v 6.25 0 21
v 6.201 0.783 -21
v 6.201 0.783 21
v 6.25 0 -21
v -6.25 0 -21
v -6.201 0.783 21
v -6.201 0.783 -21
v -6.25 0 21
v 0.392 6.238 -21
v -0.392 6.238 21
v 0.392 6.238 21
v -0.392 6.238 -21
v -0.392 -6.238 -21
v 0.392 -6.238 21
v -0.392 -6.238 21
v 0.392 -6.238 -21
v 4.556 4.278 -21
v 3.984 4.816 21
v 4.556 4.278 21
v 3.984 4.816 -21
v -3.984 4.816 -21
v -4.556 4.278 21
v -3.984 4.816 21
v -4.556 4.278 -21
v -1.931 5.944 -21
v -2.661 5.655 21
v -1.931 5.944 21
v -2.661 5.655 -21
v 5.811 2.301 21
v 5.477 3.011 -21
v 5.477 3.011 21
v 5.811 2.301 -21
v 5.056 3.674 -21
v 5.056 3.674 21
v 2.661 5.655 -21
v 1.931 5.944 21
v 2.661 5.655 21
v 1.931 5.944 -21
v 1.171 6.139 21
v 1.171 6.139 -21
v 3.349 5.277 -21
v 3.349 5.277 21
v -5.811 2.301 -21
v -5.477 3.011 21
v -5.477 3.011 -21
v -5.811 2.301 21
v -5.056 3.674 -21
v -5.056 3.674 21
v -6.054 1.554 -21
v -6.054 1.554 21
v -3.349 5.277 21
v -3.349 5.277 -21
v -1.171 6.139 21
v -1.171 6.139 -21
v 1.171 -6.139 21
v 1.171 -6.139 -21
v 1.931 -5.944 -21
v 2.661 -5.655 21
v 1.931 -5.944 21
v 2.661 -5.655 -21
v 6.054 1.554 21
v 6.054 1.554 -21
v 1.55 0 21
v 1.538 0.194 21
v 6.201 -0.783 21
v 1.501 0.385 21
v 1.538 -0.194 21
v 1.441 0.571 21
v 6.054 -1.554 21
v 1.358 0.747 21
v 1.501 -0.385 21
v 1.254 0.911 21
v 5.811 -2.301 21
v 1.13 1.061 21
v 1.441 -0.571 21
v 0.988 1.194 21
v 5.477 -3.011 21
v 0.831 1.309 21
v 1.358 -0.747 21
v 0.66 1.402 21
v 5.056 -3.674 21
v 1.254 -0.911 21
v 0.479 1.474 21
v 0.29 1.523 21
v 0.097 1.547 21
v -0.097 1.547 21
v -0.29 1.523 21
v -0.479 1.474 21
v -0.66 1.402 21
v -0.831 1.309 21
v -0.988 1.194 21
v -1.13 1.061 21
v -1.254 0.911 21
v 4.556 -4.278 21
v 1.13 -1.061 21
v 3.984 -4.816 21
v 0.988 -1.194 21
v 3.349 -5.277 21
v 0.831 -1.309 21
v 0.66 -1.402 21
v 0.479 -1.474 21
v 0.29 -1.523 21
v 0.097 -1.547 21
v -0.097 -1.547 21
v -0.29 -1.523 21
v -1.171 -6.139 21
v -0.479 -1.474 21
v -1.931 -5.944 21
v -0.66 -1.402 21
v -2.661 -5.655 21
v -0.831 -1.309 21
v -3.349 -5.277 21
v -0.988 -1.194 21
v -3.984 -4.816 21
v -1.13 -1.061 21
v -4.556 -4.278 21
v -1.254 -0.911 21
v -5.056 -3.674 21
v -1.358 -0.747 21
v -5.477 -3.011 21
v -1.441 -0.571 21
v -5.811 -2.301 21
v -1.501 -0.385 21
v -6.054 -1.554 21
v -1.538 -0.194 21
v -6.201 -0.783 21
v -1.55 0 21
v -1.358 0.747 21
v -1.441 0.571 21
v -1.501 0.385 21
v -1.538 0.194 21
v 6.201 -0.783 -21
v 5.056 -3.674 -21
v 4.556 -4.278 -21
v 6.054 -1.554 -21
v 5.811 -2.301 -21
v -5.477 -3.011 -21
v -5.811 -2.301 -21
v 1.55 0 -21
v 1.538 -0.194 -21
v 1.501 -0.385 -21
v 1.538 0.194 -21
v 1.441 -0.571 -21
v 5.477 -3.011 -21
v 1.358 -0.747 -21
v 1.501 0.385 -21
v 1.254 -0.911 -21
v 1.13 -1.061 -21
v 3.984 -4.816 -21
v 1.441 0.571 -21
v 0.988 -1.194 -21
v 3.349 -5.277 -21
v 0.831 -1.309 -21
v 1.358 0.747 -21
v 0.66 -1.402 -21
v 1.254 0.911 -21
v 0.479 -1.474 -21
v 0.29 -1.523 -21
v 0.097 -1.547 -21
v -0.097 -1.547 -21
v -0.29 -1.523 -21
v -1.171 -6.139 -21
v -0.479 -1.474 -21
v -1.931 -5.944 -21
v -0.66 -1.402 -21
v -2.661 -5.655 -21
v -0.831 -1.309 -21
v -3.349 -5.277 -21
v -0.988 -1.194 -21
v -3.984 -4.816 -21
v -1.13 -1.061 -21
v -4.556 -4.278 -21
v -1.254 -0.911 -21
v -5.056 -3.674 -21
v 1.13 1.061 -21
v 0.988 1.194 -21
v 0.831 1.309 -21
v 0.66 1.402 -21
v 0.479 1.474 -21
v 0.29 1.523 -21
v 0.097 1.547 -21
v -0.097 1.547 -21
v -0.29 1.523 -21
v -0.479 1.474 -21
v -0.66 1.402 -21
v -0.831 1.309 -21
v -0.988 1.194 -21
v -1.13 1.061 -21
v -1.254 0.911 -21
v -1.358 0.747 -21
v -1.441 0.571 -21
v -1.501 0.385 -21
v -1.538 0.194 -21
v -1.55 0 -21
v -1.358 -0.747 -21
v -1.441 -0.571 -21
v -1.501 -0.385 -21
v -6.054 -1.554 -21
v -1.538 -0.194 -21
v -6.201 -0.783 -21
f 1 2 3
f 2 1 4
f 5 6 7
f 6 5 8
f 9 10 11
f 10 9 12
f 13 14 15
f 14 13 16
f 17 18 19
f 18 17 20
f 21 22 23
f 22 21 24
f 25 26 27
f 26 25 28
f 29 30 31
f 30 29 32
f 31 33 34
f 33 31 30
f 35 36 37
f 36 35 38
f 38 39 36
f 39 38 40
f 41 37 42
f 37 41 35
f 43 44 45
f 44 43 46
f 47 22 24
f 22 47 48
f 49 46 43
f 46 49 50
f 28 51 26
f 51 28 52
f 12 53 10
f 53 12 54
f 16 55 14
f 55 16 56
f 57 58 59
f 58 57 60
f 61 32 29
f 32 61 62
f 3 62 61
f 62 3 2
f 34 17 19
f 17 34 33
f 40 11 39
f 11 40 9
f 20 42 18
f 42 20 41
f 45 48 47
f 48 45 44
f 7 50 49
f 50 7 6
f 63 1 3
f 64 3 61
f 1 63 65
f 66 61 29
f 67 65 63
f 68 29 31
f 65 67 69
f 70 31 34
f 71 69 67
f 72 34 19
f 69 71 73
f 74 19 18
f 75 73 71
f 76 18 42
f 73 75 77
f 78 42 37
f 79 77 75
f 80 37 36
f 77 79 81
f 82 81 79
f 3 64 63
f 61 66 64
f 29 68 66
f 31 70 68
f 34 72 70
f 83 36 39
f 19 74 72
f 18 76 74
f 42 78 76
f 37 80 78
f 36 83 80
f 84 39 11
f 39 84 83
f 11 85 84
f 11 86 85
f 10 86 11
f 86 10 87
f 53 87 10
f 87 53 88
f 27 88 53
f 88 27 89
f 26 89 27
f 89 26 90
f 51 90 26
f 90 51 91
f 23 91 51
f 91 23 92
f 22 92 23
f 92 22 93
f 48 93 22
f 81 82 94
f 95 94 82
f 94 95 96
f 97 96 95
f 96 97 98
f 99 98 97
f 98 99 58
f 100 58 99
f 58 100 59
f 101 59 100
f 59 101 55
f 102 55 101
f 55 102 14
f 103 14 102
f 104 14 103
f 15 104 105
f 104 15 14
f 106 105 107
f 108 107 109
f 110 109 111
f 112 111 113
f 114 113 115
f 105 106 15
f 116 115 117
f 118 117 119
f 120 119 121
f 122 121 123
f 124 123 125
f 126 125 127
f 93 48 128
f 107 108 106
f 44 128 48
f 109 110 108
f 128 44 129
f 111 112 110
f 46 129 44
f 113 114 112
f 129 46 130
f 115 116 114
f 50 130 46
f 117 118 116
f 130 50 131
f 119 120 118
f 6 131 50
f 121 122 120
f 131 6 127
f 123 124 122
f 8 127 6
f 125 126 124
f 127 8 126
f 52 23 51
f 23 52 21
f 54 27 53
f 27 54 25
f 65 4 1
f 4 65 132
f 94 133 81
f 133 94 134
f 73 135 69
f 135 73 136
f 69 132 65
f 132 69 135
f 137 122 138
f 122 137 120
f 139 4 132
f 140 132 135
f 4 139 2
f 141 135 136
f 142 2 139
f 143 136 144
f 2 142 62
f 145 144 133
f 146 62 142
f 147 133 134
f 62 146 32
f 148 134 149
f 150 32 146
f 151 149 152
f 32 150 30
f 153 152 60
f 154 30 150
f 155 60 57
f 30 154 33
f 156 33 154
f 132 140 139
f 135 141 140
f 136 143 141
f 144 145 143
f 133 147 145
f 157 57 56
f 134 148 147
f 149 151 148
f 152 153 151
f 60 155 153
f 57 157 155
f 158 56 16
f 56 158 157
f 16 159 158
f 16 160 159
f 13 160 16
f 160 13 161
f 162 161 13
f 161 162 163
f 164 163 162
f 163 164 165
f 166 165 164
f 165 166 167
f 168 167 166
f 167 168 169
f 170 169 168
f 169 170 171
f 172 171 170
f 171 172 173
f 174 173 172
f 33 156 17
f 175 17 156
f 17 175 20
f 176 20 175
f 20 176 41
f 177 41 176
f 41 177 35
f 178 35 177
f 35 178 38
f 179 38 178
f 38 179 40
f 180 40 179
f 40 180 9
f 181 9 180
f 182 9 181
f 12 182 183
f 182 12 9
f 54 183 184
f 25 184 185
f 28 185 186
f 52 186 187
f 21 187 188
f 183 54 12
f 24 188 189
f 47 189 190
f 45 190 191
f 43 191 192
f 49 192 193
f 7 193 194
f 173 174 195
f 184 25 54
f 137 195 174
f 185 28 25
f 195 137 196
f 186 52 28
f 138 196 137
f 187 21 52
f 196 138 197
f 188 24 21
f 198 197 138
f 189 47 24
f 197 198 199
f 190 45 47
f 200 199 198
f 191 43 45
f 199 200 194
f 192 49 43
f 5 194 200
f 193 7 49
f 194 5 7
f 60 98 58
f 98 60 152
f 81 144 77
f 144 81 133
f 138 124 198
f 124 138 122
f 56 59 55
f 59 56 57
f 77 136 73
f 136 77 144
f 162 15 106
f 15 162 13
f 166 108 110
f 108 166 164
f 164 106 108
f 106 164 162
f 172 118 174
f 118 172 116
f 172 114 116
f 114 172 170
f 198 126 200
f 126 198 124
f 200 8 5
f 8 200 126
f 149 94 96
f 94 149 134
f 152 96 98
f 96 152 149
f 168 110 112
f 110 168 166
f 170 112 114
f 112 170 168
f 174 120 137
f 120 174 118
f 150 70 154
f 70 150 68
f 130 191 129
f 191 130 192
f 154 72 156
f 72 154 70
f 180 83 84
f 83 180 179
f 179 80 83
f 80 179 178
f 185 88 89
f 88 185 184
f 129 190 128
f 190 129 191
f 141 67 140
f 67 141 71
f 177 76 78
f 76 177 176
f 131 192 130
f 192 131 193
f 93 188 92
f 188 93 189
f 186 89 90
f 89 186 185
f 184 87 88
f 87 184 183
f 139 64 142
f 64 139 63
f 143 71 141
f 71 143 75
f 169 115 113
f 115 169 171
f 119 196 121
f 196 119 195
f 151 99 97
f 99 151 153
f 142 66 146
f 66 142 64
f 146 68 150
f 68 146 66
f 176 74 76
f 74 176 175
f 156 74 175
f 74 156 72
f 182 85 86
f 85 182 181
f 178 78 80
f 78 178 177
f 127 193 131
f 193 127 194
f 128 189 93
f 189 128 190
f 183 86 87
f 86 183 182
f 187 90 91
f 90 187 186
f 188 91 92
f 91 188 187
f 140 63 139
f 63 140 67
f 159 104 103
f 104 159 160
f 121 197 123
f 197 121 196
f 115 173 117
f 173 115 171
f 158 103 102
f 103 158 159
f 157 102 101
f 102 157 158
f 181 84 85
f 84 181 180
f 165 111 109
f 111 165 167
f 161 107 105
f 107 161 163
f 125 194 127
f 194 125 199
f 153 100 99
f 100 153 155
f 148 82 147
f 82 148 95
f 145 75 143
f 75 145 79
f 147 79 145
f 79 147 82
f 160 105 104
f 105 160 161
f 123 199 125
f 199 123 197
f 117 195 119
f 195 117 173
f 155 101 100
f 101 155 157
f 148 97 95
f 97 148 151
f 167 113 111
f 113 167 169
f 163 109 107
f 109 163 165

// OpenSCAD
$fn = 50;


difference() {
	union() {
		translate(v = [0, 0, -21.0000000000]) {
			cylinder(h = 42, r = 6.2500000000);
		}
	}
	union() {
		translate(v = [0, 0, -100.0000000000]) {
			cylinder(h = 200, r = 1.5500000000);
		}
	}
}
